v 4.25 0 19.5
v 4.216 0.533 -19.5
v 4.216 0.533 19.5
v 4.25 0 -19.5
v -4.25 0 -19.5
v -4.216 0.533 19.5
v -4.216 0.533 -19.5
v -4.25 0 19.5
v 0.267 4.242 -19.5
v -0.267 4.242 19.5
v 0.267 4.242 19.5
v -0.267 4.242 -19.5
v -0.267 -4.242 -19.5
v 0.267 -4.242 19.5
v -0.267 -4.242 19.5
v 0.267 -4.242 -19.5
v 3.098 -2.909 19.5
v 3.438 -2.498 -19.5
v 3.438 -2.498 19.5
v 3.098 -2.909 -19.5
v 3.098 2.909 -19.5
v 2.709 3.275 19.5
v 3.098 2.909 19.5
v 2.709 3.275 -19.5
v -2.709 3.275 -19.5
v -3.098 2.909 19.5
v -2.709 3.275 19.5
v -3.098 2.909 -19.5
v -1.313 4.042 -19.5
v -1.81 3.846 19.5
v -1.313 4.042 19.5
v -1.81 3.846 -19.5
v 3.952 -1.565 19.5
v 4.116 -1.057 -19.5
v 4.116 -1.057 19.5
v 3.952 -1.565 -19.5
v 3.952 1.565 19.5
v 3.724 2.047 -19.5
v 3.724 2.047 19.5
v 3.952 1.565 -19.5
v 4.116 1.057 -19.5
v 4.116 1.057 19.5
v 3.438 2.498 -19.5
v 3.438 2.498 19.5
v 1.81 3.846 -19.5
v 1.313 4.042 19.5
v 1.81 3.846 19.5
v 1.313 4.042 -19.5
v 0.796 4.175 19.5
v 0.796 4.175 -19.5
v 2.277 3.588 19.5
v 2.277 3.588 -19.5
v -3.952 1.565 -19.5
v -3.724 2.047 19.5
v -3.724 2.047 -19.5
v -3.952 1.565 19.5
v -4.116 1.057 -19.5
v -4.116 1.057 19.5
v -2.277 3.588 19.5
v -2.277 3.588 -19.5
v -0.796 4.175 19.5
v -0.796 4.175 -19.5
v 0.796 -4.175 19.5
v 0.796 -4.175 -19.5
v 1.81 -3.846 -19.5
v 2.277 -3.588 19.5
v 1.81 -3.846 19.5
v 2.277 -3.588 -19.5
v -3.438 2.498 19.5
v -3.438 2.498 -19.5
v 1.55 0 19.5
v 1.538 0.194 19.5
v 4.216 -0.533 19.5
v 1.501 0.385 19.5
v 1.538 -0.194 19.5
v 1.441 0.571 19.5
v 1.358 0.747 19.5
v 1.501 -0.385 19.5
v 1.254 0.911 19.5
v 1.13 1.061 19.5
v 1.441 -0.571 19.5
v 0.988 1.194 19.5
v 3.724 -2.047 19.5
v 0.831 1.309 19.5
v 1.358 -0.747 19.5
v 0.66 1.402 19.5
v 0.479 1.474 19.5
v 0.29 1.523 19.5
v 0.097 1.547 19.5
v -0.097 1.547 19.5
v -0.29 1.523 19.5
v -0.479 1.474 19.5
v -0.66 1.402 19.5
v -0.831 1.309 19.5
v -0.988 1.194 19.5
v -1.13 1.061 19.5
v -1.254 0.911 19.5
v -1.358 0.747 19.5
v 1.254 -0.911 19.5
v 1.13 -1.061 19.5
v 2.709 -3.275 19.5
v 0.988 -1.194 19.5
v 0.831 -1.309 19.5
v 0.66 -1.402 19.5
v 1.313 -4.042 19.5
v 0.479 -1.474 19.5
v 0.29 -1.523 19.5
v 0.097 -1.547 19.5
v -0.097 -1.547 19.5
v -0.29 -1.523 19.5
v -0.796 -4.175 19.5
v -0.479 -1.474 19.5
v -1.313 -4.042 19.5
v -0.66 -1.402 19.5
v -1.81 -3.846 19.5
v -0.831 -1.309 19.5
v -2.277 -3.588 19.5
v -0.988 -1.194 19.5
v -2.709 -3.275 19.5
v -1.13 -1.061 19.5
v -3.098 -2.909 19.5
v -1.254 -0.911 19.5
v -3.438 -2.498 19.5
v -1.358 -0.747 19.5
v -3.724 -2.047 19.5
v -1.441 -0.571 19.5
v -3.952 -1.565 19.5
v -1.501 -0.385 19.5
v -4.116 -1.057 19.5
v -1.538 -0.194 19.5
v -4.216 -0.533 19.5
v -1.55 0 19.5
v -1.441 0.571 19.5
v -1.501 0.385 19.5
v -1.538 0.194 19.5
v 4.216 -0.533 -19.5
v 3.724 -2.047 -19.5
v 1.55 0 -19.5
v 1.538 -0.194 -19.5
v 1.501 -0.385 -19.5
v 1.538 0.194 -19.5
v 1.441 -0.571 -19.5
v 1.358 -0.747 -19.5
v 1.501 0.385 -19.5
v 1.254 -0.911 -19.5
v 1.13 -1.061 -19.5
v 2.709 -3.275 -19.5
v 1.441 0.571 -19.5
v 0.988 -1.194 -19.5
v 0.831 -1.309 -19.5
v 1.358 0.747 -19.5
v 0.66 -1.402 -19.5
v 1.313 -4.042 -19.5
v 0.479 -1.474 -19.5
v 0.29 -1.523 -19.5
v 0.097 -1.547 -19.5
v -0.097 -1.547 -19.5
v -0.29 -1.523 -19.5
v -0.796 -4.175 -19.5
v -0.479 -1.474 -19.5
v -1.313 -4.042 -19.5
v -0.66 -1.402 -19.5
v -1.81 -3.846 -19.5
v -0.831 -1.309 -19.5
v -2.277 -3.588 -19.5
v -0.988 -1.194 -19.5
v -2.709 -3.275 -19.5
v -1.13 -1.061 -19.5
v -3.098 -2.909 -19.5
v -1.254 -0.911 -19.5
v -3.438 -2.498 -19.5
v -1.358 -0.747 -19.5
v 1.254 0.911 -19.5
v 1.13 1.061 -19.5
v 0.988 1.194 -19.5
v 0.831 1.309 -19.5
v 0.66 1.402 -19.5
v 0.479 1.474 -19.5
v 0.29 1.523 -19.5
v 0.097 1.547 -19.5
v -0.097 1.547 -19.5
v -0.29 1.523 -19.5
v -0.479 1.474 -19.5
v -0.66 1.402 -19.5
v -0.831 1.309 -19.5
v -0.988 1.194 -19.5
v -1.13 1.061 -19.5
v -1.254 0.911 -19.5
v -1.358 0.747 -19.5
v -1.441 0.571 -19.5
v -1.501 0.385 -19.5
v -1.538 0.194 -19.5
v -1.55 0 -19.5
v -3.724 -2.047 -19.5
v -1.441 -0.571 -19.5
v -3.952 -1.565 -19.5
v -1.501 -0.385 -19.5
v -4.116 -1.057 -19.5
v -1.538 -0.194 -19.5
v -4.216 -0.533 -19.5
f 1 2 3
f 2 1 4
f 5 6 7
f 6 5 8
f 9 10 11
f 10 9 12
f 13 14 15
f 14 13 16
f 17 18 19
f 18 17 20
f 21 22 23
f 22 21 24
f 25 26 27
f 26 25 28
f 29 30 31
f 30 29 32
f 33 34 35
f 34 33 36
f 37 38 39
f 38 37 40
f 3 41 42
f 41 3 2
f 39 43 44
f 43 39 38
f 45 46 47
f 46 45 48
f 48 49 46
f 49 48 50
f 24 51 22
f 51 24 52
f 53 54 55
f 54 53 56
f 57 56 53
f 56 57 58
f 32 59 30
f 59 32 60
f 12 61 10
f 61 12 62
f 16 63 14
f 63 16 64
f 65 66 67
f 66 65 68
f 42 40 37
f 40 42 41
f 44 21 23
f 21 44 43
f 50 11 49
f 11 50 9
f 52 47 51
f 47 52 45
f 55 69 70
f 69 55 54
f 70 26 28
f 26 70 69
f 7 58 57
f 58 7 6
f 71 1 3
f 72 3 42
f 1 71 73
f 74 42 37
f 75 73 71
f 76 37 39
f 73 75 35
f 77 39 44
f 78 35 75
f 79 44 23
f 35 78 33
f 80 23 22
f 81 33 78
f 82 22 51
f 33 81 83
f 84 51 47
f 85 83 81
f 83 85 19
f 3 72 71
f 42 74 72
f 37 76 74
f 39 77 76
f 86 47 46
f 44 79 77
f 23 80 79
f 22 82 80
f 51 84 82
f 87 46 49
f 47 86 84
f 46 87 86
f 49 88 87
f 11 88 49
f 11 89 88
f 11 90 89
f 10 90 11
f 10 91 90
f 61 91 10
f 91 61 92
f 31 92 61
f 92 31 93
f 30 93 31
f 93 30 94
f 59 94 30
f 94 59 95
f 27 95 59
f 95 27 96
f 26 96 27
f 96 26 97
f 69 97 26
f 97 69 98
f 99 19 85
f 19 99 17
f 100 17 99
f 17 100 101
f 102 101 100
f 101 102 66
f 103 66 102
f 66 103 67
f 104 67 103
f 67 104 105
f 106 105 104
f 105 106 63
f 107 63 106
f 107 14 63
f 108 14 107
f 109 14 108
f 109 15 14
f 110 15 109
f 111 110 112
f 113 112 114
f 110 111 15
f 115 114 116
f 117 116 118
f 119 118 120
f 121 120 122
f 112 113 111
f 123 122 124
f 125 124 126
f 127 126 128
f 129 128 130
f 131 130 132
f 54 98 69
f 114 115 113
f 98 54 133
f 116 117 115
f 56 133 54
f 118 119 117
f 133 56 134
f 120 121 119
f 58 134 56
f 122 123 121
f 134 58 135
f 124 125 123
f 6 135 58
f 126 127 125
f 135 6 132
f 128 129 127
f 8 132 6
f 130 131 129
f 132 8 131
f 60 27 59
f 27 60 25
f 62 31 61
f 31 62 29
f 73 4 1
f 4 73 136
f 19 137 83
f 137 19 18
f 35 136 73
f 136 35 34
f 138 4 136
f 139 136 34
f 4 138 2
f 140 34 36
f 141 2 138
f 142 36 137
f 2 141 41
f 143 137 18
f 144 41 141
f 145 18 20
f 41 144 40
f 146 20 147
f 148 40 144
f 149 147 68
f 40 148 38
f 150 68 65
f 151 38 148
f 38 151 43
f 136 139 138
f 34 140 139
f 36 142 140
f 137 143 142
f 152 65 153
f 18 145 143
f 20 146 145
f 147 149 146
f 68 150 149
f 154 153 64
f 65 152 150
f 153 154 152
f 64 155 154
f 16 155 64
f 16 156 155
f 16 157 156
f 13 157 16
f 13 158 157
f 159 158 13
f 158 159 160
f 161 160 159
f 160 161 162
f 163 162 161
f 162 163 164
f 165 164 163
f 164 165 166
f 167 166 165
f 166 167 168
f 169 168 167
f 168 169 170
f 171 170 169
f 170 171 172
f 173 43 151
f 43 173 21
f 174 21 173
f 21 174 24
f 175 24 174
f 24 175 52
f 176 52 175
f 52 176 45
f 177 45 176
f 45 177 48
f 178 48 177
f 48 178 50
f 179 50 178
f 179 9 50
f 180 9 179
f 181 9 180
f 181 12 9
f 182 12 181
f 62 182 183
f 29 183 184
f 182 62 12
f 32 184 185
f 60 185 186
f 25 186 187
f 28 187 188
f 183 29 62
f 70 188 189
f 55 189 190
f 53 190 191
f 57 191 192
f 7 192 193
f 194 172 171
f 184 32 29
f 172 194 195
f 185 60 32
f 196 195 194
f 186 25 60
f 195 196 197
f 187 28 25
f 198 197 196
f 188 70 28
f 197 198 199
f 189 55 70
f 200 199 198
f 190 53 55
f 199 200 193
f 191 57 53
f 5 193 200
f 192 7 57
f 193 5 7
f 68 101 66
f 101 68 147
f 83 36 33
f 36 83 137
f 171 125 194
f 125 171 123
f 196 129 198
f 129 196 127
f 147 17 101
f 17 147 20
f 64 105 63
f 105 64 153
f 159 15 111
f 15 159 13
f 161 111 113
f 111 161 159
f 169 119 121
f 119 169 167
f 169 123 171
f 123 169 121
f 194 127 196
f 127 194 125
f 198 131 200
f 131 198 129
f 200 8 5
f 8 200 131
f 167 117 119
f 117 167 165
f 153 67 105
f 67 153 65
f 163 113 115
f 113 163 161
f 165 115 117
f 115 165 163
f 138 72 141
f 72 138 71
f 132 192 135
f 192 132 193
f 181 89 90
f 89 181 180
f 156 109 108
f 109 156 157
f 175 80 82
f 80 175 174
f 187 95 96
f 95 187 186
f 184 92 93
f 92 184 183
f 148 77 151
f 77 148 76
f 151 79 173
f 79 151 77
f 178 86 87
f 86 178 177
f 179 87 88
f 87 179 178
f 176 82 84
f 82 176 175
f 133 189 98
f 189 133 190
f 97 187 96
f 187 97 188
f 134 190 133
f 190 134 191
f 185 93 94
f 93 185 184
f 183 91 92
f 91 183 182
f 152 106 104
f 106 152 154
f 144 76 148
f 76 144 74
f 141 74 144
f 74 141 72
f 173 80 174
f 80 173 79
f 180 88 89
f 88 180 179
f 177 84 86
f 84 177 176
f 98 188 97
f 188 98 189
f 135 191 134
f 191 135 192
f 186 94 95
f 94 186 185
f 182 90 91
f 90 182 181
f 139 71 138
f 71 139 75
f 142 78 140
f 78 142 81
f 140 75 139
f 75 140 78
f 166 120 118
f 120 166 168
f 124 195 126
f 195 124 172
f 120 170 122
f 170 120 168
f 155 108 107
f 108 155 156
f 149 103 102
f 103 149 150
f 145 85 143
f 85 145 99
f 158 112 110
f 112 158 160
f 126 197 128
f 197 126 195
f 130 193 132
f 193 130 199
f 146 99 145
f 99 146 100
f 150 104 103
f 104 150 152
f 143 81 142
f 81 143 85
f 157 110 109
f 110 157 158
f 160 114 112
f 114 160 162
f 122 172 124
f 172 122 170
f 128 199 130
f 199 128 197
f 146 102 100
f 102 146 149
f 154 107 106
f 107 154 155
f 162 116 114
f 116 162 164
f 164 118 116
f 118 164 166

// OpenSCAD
$fn = 50;


difference() {
	union() {
		translate(v = [0, 0, -19.5000000000]) {
			cylinder(h = 39, r = 4.2500000000);
		}
	}
	union() {
		translate(v = [0, 0, -100.0000000000]) {
			cylinder(h = 200, r = 1.5500000000);
		}
	}
}
